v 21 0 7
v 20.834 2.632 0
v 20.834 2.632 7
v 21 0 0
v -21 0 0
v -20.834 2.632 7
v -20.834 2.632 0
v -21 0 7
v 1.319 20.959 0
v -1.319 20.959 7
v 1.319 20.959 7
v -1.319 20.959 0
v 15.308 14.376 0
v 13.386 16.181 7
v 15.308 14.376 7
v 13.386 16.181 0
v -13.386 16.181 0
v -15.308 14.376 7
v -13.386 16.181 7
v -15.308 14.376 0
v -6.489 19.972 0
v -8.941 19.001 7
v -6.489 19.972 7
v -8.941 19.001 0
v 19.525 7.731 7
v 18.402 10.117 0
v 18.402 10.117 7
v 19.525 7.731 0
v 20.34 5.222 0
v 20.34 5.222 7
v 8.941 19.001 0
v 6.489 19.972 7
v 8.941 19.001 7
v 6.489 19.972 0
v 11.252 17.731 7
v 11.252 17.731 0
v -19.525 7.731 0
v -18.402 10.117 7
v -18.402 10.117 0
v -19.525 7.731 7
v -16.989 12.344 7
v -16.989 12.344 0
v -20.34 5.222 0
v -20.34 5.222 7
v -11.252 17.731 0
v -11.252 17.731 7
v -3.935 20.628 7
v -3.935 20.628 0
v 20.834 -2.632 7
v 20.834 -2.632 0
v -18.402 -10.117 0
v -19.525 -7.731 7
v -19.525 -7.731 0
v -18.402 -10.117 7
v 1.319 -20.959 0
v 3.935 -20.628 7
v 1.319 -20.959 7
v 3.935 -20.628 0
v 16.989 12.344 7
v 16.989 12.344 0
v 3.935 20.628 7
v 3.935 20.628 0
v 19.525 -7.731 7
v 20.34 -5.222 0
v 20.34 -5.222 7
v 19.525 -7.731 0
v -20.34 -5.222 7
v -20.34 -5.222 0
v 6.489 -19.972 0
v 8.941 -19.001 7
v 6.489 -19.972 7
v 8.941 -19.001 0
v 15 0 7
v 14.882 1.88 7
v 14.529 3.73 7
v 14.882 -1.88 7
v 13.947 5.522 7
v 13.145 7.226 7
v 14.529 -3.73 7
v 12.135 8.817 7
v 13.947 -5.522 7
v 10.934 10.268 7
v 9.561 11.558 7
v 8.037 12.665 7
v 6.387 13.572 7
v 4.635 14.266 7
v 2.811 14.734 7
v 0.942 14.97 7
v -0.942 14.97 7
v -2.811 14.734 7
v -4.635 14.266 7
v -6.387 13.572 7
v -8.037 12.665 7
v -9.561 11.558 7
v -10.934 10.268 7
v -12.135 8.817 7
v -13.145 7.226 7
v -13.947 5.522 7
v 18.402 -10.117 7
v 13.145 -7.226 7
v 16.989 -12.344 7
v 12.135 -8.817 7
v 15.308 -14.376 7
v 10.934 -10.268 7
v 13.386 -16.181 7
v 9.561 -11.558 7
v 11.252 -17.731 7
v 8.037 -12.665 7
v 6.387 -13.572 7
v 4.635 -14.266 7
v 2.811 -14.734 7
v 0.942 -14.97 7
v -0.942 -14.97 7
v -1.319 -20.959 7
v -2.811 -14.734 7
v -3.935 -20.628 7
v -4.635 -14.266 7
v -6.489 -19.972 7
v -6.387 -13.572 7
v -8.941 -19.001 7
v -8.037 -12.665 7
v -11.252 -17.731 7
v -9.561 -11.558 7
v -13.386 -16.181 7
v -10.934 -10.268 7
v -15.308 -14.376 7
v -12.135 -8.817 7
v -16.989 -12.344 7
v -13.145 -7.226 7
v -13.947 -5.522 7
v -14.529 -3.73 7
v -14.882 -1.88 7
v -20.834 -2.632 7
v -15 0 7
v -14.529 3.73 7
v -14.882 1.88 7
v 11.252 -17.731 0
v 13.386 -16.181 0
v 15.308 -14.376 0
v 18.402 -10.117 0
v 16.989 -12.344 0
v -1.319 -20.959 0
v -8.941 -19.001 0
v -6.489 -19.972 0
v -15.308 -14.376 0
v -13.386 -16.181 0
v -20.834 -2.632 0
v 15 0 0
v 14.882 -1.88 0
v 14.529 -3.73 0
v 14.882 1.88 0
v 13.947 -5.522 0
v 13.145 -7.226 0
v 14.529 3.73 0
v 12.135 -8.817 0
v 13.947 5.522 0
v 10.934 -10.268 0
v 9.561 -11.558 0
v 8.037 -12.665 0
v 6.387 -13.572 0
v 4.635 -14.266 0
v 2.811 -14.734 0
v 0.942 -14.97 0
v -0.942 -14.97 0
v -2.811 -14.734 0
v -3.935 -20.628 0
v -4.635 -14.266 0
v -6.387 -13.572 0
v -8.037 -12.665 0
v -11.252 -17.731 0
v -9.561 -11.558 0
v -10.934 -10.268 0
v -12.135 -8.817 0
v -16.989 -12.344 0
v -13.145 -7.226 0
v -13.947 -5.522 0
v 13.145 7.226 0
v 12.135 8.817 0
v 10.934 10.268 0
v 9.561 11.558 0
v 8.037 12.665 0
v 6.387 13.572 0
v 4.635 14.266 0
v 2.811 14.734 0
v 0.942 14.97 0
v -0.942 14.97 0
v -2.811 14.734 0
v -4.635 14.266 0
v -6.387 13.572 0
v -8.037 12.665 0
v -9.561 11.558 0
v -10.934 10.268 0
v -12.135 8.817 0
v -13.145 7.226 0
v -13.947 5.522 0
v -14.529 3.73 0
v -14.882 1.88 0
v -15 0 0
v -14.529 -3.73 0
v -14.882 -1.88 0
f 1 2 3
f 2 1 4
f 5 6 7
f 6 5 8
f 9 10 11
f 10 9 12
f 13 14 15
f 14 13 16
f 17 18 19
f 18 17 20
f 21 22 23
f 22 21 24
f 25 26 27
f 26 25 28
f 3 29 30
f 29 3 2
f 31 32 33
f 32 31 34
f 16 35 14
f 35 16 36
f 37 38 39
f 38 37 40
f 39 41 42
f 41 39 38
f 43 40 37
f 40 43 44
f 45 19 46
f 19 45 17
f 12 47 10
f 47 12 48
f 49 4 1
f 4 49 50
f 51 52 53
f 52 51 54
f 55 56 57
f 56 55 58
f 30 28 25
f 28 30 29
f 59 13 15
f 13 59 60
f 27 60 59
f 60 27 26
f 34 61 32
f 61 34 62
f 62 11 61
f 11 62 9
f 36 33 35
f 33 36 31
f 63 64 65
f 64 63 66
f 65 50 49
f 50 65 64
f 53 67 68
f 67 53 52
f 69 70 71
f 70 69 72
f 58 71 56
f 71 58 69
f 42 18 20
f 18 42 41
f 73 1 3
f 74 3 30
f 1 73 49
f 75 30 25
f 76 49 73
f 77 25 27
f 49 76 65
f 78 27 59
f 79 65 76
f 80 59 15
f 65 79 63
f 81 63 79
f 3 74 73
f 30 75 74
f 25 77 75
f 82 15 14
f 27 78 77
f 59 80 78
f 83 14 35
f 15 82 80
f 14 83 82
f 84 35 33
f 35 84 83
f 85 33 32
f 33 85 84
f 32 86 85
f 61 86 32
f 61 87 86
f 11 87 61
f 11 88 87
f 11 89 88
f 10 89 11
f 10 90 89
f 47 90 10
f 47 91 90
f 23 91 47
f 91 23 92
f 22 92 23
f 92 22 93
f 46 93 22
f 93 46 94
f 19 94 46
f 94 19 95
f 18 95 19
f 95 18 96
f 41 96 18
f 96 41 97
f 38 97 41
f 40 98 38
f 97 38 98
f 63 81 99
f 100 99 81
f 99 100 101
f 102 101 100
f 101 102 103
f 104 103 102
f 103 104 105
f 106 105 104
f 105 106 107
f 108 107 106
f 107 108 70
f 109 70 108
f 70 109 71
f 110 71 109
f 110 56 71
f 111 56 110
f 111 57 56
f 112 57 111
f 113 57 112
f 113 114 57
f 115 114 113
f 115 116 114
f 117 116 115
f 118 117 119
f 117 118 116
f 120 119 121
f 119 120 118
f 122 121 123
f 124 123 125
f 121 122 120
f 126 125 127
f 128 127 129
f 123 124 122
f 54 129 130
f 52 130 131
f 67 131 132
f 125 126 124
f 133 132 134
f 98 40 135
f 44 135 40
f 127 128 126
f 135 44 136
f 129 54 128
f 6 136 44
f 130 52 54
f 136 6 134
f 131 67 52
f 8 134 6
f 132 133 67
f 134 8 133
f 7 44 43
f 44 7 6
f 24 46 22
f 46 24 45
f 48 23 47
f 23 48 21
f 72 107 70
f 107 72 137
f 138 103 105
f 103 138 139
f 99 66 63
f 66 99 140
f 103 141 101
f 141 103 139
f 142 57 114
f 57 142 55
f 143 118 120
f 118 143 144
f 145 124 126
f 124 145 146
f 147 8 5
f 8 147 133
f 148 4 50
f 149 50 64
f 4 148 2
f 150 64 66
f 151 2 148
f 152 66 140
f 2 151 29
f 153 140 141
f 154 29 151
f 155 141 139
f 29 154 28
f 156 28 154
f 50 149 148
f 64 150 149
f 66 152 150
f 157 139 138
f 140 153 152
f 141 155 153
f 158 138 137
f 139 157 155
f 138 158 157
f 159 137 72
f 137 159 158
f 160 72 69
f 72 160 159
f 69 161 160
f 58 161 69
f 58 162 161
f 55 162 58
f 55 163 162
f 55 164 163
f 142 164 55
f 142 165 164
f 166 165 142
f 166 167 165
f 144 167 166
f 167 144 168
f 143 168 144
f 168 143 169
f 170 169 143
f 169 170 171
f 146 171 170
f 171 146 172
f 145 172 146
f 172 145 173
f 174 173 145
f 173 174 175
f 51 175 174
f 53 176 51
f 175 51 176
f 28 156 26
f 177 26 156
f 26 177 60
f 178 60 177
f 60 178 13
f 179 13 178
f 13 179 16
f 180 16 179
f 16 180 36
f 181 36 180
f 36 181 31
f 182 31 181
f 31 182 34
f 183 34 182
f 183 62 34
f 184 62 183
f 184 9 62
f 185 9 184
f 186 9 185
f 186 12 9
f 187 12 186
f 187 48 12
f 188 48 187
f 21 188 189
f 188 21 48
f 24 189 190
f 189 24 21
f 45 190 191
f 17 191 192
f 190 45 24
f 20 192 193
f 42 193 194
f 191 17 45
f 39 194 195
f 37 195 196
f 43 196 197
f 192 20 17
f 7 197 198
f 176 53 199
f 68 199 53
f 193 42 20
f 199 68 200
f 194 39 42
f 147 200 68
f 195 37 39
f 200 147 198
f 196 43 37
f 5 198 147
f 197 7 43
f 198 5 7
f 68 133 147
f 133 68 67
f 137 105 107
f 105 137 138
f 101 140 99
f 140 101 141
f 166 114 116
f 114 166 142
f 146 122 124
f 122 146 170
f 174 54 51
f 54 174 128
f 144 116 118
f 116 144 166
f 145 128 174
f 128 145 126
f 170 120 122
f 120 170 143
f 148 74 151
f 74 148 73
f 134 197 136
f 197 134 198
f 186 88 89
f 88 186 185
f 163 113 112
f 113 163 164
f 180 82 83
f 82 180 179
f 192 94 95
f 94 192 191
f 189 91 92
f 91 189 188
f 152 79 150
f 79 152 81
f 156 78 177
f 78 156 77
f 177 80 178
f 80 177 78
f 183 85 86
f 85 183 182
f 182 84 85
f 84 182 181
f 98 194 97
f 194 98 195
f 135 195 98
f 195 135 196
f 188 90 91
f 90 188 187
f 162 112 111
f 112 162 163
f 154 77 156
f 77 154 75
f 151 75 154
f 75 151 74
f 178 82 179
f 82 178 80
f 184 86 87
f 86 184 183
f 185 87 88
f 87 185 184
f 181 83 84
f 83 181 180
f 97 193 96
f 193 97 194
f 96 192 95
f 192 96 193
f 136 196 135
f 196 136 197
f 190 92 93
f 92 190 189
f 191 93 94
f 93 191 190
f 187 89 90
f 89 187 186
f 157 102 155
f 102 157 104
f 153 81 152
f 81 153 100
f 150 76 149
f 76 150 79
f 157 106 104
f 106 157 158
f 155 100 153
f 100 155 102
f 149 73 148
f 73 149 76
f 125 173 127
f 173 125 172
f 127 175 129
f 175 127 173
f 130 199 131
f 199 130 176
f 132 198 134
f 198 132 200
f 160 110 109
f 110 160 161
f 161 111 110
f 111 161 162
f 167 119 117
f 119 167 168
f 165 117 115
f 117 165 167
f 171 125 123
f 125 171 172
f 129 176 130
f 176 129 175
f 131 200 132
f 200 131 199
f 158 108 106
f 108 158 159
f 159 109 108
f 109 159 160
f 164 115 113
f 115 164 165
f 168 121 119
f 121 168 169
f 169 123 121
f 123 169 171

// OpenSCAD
$fn = 50;


difference() {
	union() {
		translate(v = [0, 0, 0]) {
			rotate(a = [0, 0, 0]) {
				cylinder(h = 7, r = 21.0000000000);
			}
		}
	}
	union() {
		translate(v = [0, 0, 0]) {
			rotate(a = [0, 0, 0]) {
				cylinder(h = 7, r = 15.0000000000);
			}
		}
	}
}
